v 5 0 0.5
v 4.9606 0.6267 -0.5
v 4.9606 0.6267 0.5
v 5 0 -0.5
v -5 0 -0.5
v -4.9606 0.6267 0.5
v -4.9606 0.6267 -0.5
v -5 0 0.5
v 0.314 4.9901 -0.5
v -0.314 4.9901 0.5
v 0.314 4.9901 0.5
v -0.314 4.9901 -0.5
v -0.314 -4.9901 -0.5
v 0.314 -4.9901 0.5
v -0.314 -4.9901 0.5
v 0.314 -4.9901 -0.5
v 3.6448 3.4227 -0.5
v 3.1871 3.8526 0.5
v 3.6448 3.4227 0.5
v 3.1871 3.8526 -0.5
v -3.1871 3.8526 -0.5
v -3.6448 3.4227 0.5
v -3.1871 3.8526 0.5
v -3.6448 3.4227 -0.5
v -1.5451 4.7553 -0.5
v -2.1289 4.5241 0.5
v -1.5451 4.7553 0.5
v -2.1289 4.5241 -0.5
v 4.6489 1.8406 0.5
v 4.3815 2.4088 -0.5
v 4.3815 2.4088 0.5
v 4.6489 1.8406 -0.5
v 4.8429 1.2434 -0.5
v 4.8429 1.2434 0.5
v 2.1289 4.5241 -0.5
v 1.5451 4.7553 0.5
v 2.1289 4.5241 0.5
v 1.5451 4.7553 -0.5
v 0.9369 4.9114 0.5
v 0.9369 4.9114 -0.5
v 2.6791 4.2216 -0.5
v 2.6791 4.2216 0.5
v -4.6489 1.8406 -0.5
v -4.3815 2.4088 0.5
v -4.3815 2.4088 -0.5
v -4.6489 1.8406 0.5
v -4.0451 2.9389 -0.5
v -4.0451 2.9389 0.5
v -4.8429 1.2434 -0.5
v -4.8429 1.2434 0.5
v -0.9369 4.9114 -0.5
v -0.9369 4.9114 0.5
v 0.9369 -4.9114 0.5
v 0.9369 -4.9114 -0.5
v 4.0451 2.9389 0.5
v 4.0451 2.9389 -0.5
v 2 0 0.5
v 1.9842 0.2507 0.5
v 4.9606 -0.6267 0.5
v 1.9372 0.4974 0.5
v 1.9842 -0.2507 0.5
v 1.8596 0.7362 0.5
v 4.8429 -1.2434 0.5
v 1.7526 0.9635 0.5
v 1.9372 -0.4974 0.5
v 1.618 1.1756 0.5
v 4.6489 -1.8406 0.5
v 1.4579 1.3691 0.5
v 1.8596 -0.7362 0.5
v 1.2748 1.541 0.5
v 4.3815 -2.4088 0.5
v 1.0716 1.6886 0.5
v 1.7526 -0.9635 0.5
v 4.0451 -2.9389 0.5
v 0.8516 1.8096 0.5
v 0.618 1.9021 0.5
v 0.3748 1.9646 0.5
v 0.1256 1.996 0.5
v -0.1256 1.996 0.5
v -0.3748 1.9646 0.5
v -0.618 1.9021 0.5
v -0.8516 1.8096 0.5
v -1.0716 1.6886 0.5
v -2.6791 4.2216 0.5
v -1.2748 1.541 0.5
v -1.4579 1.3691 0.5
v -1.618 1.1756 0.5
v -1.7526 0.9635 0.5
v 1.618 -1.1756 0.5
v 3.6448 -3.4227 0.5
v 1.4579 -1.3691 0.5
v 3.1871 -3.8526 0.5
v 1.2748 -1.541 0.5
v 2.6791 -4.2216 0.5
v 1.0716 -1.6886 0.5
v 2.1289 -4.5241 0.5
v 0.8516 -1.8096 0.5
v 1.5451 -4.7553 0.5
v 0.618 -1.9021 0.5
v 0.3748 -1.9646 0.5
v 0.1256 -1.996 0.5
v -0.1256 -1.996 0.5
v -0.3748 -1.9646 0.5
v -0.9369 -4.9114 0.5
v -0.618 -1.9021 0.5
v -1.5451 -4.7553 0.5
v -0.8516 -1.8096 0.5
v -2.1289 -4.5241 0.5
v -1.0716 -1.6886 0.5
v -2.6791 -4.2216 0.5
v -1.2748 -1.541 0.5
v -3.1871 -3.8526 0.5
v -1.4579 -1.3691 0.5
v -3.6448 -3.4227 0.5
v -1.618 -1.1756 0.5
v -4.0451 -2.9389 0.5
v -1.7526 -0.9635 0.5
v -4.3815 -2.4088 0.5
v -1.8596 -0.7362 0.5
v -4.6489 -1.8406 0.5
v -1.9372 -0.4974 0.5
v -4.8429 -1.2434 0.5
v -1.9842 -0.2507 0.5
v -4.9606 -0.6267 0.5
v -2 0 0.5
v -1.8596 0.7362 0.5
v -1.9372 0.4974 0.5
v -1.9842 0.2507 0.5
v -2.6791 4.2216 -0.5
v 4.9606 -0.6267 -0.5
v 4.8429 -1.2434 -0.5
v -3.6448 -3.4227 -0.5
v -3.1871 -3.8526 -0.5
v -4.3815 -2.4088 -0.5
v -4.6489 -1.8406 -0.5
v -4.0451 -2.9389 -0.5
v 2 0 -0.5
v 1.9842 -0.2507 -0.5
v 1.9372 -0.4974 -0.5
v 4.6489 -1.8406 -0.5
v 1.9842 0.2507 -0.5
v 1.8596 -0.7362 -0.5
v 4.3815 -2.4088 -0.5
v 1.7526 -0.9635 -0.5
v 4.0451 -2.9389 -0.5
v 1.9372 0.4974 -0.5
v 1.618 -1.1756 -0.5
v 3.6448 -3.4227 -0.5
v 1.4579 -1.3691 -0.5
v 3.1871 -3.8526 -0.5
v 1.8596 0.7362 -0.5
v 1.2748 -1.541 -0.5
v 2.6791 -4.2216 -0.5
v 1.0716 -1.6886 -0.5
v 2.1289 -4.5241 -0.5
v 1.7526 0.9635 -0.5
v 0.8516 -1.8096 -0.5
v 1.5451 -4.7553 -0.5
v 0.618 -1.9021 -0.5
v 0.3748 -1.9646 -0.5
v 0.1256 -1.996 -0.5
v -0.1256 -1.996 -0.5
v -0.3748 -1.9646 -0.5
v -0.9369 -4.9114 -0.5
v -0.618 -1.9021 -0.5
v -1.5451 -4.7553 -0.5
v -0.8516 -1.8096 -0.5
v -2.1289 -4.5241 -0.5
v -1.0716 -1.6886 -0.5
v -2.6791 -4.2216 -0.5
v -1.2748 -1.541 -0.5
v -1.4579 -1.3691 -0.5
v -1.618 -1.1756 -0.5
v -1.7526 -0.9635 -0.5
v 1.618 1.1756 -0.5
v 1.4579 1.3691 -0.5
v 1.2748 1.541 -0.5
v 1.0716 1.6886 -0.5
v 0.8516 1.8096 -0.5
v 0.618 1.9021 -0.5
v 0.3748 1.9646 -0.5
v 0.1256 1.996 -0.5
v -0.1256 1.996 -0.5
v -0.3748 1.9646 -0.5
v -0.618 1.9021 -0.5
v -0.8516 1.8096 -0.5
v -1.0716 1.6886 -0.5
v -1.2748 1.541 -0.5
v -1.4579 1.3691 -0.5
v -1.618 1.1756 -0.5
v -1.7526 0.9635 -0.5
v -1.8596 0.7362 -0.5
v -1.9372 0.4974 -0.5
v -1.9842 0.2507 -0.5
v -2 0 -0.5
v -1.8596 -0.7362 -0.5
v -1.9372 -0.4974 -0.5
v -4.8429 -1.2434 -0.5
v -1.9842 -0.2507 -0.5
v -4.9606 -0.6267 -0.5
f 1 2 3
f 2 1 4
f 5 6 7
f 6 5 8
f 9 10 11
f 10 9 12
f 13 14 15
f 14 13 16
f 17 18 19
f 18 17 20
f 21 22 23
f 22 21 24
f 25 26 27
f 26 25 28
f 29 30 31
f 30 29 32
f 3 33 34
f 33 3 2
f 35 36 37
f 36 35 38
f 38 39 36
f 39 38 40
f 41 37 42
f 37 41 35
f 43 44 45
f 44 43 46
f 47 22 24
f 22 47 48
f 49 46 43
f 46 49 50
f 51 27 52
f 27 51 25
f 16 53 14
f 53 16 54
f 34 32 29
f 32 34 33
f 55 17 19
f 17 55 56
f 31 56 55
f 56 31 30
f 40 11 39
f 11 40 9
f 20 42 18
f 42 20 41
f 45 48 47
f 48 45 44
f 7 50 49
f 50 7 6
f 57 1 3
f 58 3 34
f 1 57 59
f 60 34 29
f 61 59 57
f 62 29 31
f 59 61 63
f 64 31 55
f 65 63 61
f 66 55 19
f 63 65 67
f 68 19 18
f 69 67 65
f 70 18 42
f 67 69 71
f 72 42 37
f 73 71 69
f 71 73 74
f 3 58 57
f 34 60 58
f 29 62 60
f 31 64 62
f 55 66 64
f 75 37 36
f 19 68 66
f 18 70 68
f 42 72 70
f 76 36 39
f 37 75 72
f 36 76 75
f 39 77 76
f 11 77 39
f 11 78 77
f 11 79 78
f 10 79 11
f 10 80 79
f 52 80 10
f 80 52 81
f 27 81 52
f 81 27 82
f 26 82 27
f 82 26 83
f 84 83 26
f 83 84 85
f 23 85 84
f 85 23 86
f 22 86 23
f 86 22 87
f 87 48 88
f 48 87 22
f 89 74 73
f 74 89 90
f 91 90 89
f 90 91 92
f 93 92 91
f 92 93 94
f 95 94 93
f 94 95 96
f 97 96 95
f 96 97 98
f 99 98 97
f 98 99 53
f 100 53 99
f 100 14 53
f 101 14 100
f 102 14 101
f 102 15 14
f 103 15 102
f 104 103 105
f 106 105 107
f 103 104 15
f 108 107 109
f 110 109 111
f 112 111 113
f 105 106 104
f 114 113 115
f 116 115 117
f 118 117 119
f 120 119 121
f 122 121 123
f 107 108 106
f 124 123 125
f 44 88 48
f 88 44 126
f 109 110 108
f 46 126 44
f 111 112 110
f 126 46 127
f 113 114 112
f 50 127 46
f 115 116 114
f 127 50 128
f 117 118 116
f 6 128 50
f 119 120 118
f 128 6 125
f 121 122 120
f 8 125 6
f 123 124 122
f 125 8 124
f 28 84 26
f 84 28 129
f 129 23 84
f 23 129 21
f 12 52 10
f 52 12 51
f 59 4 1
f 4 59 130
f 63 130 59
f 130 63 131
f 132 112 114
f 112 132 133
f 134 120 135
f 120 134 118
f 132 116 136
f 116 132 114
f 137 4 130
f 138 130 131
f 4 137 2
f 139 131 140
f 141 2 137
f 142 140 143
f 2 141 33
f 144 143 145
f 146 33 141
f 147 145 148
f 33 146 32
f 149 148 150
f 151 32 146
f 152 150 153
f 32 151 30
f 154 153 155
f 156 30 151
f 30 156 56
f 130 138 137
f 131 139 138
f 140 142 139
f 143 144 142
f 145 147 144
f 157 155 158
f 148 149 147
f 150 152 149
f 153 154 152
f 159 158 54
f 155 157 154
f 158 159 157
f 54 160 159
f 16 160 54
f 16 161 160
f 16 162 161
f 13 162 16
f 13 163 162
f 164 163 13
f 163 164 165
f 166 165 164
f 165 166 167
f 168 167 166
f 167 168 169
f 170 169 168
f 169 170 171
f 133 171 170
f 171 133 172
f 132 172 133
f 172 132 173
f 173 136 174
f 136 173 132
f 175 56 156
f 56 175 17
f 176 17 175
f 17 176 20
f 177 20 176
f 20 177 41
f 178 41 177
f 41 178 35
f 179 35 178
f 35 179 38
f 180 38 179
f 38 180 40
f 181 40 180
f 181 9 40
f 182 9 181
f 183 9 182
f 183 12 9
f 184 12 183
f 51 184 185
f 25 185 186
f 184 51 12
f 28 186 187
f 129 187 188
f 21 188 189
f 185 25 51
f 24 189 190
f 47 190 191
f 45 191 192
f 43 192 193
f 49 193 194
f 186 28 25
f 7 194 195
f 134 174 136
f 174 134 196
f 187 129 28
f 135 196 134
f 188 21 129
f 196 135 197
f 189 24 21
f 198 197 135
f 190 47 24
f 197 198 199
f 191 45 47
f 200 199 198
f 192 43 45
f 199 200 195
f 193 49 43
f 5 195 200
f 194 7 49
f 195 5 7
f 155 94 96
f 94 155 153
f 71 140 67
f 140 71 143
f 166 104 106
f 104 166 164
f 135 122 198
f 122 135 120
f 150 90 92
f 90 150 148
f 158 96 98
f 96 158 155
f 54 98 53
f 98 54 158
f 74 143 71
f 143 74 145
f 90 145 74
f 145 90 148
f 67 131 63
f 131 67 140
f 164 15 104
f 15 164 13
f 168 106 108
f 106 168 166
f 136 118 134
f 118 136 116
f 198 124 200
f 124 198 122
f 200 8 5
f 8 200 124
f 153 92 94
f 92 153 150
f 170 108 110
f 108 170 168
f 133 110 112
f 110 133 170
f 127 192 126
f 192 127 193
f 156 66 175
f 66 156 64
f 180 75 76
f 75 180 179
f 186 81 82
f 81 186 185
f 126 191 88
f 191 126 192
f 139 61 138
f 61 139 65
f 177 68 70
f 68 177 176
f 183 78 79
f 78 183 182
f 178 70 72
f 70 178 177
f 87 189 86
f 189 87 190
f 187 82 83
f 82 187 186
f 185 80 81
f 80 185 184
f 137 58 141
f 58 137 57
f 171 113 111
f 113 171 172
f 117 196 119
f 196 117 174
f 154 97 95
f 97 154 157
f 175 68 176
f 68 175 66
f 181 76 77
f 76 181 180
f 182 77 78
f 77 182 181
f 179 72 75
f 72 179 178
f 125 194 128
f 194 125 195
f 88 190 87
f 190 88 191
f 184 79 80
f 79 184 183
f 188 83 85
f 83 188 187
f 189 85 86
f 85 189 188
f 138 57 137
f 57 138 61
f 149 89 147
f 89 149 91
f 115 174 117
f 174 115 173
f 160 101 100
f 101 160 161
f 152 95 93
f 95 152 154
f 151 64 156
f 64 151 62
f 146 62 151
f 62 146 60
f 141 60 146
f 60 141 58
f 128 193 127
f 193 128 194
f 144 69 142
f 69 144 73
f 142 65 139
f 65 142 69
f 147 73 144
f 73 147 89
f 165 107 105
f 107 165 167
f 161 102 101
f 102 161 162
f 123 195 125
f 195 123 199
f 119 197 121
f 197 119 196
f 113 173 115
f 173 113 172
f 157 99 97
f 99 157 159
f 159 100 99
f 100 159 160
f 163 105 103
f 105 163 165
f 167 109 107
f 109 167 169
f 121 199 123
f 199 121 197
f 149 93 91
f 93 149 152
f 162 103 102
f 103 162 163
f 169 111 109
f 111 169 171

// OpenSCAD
$fn = 50;


difference() {
	union() {
		translate(v = [0, 0, -0.5000000000]) {
			cylinder(h = 1, r = 5.0000000000);
		}
	}
	union() {
		translate(v = [0, 0, -100.0000000000]) {
			cylinder(h = 200, r = 2);
		}
	}
}
